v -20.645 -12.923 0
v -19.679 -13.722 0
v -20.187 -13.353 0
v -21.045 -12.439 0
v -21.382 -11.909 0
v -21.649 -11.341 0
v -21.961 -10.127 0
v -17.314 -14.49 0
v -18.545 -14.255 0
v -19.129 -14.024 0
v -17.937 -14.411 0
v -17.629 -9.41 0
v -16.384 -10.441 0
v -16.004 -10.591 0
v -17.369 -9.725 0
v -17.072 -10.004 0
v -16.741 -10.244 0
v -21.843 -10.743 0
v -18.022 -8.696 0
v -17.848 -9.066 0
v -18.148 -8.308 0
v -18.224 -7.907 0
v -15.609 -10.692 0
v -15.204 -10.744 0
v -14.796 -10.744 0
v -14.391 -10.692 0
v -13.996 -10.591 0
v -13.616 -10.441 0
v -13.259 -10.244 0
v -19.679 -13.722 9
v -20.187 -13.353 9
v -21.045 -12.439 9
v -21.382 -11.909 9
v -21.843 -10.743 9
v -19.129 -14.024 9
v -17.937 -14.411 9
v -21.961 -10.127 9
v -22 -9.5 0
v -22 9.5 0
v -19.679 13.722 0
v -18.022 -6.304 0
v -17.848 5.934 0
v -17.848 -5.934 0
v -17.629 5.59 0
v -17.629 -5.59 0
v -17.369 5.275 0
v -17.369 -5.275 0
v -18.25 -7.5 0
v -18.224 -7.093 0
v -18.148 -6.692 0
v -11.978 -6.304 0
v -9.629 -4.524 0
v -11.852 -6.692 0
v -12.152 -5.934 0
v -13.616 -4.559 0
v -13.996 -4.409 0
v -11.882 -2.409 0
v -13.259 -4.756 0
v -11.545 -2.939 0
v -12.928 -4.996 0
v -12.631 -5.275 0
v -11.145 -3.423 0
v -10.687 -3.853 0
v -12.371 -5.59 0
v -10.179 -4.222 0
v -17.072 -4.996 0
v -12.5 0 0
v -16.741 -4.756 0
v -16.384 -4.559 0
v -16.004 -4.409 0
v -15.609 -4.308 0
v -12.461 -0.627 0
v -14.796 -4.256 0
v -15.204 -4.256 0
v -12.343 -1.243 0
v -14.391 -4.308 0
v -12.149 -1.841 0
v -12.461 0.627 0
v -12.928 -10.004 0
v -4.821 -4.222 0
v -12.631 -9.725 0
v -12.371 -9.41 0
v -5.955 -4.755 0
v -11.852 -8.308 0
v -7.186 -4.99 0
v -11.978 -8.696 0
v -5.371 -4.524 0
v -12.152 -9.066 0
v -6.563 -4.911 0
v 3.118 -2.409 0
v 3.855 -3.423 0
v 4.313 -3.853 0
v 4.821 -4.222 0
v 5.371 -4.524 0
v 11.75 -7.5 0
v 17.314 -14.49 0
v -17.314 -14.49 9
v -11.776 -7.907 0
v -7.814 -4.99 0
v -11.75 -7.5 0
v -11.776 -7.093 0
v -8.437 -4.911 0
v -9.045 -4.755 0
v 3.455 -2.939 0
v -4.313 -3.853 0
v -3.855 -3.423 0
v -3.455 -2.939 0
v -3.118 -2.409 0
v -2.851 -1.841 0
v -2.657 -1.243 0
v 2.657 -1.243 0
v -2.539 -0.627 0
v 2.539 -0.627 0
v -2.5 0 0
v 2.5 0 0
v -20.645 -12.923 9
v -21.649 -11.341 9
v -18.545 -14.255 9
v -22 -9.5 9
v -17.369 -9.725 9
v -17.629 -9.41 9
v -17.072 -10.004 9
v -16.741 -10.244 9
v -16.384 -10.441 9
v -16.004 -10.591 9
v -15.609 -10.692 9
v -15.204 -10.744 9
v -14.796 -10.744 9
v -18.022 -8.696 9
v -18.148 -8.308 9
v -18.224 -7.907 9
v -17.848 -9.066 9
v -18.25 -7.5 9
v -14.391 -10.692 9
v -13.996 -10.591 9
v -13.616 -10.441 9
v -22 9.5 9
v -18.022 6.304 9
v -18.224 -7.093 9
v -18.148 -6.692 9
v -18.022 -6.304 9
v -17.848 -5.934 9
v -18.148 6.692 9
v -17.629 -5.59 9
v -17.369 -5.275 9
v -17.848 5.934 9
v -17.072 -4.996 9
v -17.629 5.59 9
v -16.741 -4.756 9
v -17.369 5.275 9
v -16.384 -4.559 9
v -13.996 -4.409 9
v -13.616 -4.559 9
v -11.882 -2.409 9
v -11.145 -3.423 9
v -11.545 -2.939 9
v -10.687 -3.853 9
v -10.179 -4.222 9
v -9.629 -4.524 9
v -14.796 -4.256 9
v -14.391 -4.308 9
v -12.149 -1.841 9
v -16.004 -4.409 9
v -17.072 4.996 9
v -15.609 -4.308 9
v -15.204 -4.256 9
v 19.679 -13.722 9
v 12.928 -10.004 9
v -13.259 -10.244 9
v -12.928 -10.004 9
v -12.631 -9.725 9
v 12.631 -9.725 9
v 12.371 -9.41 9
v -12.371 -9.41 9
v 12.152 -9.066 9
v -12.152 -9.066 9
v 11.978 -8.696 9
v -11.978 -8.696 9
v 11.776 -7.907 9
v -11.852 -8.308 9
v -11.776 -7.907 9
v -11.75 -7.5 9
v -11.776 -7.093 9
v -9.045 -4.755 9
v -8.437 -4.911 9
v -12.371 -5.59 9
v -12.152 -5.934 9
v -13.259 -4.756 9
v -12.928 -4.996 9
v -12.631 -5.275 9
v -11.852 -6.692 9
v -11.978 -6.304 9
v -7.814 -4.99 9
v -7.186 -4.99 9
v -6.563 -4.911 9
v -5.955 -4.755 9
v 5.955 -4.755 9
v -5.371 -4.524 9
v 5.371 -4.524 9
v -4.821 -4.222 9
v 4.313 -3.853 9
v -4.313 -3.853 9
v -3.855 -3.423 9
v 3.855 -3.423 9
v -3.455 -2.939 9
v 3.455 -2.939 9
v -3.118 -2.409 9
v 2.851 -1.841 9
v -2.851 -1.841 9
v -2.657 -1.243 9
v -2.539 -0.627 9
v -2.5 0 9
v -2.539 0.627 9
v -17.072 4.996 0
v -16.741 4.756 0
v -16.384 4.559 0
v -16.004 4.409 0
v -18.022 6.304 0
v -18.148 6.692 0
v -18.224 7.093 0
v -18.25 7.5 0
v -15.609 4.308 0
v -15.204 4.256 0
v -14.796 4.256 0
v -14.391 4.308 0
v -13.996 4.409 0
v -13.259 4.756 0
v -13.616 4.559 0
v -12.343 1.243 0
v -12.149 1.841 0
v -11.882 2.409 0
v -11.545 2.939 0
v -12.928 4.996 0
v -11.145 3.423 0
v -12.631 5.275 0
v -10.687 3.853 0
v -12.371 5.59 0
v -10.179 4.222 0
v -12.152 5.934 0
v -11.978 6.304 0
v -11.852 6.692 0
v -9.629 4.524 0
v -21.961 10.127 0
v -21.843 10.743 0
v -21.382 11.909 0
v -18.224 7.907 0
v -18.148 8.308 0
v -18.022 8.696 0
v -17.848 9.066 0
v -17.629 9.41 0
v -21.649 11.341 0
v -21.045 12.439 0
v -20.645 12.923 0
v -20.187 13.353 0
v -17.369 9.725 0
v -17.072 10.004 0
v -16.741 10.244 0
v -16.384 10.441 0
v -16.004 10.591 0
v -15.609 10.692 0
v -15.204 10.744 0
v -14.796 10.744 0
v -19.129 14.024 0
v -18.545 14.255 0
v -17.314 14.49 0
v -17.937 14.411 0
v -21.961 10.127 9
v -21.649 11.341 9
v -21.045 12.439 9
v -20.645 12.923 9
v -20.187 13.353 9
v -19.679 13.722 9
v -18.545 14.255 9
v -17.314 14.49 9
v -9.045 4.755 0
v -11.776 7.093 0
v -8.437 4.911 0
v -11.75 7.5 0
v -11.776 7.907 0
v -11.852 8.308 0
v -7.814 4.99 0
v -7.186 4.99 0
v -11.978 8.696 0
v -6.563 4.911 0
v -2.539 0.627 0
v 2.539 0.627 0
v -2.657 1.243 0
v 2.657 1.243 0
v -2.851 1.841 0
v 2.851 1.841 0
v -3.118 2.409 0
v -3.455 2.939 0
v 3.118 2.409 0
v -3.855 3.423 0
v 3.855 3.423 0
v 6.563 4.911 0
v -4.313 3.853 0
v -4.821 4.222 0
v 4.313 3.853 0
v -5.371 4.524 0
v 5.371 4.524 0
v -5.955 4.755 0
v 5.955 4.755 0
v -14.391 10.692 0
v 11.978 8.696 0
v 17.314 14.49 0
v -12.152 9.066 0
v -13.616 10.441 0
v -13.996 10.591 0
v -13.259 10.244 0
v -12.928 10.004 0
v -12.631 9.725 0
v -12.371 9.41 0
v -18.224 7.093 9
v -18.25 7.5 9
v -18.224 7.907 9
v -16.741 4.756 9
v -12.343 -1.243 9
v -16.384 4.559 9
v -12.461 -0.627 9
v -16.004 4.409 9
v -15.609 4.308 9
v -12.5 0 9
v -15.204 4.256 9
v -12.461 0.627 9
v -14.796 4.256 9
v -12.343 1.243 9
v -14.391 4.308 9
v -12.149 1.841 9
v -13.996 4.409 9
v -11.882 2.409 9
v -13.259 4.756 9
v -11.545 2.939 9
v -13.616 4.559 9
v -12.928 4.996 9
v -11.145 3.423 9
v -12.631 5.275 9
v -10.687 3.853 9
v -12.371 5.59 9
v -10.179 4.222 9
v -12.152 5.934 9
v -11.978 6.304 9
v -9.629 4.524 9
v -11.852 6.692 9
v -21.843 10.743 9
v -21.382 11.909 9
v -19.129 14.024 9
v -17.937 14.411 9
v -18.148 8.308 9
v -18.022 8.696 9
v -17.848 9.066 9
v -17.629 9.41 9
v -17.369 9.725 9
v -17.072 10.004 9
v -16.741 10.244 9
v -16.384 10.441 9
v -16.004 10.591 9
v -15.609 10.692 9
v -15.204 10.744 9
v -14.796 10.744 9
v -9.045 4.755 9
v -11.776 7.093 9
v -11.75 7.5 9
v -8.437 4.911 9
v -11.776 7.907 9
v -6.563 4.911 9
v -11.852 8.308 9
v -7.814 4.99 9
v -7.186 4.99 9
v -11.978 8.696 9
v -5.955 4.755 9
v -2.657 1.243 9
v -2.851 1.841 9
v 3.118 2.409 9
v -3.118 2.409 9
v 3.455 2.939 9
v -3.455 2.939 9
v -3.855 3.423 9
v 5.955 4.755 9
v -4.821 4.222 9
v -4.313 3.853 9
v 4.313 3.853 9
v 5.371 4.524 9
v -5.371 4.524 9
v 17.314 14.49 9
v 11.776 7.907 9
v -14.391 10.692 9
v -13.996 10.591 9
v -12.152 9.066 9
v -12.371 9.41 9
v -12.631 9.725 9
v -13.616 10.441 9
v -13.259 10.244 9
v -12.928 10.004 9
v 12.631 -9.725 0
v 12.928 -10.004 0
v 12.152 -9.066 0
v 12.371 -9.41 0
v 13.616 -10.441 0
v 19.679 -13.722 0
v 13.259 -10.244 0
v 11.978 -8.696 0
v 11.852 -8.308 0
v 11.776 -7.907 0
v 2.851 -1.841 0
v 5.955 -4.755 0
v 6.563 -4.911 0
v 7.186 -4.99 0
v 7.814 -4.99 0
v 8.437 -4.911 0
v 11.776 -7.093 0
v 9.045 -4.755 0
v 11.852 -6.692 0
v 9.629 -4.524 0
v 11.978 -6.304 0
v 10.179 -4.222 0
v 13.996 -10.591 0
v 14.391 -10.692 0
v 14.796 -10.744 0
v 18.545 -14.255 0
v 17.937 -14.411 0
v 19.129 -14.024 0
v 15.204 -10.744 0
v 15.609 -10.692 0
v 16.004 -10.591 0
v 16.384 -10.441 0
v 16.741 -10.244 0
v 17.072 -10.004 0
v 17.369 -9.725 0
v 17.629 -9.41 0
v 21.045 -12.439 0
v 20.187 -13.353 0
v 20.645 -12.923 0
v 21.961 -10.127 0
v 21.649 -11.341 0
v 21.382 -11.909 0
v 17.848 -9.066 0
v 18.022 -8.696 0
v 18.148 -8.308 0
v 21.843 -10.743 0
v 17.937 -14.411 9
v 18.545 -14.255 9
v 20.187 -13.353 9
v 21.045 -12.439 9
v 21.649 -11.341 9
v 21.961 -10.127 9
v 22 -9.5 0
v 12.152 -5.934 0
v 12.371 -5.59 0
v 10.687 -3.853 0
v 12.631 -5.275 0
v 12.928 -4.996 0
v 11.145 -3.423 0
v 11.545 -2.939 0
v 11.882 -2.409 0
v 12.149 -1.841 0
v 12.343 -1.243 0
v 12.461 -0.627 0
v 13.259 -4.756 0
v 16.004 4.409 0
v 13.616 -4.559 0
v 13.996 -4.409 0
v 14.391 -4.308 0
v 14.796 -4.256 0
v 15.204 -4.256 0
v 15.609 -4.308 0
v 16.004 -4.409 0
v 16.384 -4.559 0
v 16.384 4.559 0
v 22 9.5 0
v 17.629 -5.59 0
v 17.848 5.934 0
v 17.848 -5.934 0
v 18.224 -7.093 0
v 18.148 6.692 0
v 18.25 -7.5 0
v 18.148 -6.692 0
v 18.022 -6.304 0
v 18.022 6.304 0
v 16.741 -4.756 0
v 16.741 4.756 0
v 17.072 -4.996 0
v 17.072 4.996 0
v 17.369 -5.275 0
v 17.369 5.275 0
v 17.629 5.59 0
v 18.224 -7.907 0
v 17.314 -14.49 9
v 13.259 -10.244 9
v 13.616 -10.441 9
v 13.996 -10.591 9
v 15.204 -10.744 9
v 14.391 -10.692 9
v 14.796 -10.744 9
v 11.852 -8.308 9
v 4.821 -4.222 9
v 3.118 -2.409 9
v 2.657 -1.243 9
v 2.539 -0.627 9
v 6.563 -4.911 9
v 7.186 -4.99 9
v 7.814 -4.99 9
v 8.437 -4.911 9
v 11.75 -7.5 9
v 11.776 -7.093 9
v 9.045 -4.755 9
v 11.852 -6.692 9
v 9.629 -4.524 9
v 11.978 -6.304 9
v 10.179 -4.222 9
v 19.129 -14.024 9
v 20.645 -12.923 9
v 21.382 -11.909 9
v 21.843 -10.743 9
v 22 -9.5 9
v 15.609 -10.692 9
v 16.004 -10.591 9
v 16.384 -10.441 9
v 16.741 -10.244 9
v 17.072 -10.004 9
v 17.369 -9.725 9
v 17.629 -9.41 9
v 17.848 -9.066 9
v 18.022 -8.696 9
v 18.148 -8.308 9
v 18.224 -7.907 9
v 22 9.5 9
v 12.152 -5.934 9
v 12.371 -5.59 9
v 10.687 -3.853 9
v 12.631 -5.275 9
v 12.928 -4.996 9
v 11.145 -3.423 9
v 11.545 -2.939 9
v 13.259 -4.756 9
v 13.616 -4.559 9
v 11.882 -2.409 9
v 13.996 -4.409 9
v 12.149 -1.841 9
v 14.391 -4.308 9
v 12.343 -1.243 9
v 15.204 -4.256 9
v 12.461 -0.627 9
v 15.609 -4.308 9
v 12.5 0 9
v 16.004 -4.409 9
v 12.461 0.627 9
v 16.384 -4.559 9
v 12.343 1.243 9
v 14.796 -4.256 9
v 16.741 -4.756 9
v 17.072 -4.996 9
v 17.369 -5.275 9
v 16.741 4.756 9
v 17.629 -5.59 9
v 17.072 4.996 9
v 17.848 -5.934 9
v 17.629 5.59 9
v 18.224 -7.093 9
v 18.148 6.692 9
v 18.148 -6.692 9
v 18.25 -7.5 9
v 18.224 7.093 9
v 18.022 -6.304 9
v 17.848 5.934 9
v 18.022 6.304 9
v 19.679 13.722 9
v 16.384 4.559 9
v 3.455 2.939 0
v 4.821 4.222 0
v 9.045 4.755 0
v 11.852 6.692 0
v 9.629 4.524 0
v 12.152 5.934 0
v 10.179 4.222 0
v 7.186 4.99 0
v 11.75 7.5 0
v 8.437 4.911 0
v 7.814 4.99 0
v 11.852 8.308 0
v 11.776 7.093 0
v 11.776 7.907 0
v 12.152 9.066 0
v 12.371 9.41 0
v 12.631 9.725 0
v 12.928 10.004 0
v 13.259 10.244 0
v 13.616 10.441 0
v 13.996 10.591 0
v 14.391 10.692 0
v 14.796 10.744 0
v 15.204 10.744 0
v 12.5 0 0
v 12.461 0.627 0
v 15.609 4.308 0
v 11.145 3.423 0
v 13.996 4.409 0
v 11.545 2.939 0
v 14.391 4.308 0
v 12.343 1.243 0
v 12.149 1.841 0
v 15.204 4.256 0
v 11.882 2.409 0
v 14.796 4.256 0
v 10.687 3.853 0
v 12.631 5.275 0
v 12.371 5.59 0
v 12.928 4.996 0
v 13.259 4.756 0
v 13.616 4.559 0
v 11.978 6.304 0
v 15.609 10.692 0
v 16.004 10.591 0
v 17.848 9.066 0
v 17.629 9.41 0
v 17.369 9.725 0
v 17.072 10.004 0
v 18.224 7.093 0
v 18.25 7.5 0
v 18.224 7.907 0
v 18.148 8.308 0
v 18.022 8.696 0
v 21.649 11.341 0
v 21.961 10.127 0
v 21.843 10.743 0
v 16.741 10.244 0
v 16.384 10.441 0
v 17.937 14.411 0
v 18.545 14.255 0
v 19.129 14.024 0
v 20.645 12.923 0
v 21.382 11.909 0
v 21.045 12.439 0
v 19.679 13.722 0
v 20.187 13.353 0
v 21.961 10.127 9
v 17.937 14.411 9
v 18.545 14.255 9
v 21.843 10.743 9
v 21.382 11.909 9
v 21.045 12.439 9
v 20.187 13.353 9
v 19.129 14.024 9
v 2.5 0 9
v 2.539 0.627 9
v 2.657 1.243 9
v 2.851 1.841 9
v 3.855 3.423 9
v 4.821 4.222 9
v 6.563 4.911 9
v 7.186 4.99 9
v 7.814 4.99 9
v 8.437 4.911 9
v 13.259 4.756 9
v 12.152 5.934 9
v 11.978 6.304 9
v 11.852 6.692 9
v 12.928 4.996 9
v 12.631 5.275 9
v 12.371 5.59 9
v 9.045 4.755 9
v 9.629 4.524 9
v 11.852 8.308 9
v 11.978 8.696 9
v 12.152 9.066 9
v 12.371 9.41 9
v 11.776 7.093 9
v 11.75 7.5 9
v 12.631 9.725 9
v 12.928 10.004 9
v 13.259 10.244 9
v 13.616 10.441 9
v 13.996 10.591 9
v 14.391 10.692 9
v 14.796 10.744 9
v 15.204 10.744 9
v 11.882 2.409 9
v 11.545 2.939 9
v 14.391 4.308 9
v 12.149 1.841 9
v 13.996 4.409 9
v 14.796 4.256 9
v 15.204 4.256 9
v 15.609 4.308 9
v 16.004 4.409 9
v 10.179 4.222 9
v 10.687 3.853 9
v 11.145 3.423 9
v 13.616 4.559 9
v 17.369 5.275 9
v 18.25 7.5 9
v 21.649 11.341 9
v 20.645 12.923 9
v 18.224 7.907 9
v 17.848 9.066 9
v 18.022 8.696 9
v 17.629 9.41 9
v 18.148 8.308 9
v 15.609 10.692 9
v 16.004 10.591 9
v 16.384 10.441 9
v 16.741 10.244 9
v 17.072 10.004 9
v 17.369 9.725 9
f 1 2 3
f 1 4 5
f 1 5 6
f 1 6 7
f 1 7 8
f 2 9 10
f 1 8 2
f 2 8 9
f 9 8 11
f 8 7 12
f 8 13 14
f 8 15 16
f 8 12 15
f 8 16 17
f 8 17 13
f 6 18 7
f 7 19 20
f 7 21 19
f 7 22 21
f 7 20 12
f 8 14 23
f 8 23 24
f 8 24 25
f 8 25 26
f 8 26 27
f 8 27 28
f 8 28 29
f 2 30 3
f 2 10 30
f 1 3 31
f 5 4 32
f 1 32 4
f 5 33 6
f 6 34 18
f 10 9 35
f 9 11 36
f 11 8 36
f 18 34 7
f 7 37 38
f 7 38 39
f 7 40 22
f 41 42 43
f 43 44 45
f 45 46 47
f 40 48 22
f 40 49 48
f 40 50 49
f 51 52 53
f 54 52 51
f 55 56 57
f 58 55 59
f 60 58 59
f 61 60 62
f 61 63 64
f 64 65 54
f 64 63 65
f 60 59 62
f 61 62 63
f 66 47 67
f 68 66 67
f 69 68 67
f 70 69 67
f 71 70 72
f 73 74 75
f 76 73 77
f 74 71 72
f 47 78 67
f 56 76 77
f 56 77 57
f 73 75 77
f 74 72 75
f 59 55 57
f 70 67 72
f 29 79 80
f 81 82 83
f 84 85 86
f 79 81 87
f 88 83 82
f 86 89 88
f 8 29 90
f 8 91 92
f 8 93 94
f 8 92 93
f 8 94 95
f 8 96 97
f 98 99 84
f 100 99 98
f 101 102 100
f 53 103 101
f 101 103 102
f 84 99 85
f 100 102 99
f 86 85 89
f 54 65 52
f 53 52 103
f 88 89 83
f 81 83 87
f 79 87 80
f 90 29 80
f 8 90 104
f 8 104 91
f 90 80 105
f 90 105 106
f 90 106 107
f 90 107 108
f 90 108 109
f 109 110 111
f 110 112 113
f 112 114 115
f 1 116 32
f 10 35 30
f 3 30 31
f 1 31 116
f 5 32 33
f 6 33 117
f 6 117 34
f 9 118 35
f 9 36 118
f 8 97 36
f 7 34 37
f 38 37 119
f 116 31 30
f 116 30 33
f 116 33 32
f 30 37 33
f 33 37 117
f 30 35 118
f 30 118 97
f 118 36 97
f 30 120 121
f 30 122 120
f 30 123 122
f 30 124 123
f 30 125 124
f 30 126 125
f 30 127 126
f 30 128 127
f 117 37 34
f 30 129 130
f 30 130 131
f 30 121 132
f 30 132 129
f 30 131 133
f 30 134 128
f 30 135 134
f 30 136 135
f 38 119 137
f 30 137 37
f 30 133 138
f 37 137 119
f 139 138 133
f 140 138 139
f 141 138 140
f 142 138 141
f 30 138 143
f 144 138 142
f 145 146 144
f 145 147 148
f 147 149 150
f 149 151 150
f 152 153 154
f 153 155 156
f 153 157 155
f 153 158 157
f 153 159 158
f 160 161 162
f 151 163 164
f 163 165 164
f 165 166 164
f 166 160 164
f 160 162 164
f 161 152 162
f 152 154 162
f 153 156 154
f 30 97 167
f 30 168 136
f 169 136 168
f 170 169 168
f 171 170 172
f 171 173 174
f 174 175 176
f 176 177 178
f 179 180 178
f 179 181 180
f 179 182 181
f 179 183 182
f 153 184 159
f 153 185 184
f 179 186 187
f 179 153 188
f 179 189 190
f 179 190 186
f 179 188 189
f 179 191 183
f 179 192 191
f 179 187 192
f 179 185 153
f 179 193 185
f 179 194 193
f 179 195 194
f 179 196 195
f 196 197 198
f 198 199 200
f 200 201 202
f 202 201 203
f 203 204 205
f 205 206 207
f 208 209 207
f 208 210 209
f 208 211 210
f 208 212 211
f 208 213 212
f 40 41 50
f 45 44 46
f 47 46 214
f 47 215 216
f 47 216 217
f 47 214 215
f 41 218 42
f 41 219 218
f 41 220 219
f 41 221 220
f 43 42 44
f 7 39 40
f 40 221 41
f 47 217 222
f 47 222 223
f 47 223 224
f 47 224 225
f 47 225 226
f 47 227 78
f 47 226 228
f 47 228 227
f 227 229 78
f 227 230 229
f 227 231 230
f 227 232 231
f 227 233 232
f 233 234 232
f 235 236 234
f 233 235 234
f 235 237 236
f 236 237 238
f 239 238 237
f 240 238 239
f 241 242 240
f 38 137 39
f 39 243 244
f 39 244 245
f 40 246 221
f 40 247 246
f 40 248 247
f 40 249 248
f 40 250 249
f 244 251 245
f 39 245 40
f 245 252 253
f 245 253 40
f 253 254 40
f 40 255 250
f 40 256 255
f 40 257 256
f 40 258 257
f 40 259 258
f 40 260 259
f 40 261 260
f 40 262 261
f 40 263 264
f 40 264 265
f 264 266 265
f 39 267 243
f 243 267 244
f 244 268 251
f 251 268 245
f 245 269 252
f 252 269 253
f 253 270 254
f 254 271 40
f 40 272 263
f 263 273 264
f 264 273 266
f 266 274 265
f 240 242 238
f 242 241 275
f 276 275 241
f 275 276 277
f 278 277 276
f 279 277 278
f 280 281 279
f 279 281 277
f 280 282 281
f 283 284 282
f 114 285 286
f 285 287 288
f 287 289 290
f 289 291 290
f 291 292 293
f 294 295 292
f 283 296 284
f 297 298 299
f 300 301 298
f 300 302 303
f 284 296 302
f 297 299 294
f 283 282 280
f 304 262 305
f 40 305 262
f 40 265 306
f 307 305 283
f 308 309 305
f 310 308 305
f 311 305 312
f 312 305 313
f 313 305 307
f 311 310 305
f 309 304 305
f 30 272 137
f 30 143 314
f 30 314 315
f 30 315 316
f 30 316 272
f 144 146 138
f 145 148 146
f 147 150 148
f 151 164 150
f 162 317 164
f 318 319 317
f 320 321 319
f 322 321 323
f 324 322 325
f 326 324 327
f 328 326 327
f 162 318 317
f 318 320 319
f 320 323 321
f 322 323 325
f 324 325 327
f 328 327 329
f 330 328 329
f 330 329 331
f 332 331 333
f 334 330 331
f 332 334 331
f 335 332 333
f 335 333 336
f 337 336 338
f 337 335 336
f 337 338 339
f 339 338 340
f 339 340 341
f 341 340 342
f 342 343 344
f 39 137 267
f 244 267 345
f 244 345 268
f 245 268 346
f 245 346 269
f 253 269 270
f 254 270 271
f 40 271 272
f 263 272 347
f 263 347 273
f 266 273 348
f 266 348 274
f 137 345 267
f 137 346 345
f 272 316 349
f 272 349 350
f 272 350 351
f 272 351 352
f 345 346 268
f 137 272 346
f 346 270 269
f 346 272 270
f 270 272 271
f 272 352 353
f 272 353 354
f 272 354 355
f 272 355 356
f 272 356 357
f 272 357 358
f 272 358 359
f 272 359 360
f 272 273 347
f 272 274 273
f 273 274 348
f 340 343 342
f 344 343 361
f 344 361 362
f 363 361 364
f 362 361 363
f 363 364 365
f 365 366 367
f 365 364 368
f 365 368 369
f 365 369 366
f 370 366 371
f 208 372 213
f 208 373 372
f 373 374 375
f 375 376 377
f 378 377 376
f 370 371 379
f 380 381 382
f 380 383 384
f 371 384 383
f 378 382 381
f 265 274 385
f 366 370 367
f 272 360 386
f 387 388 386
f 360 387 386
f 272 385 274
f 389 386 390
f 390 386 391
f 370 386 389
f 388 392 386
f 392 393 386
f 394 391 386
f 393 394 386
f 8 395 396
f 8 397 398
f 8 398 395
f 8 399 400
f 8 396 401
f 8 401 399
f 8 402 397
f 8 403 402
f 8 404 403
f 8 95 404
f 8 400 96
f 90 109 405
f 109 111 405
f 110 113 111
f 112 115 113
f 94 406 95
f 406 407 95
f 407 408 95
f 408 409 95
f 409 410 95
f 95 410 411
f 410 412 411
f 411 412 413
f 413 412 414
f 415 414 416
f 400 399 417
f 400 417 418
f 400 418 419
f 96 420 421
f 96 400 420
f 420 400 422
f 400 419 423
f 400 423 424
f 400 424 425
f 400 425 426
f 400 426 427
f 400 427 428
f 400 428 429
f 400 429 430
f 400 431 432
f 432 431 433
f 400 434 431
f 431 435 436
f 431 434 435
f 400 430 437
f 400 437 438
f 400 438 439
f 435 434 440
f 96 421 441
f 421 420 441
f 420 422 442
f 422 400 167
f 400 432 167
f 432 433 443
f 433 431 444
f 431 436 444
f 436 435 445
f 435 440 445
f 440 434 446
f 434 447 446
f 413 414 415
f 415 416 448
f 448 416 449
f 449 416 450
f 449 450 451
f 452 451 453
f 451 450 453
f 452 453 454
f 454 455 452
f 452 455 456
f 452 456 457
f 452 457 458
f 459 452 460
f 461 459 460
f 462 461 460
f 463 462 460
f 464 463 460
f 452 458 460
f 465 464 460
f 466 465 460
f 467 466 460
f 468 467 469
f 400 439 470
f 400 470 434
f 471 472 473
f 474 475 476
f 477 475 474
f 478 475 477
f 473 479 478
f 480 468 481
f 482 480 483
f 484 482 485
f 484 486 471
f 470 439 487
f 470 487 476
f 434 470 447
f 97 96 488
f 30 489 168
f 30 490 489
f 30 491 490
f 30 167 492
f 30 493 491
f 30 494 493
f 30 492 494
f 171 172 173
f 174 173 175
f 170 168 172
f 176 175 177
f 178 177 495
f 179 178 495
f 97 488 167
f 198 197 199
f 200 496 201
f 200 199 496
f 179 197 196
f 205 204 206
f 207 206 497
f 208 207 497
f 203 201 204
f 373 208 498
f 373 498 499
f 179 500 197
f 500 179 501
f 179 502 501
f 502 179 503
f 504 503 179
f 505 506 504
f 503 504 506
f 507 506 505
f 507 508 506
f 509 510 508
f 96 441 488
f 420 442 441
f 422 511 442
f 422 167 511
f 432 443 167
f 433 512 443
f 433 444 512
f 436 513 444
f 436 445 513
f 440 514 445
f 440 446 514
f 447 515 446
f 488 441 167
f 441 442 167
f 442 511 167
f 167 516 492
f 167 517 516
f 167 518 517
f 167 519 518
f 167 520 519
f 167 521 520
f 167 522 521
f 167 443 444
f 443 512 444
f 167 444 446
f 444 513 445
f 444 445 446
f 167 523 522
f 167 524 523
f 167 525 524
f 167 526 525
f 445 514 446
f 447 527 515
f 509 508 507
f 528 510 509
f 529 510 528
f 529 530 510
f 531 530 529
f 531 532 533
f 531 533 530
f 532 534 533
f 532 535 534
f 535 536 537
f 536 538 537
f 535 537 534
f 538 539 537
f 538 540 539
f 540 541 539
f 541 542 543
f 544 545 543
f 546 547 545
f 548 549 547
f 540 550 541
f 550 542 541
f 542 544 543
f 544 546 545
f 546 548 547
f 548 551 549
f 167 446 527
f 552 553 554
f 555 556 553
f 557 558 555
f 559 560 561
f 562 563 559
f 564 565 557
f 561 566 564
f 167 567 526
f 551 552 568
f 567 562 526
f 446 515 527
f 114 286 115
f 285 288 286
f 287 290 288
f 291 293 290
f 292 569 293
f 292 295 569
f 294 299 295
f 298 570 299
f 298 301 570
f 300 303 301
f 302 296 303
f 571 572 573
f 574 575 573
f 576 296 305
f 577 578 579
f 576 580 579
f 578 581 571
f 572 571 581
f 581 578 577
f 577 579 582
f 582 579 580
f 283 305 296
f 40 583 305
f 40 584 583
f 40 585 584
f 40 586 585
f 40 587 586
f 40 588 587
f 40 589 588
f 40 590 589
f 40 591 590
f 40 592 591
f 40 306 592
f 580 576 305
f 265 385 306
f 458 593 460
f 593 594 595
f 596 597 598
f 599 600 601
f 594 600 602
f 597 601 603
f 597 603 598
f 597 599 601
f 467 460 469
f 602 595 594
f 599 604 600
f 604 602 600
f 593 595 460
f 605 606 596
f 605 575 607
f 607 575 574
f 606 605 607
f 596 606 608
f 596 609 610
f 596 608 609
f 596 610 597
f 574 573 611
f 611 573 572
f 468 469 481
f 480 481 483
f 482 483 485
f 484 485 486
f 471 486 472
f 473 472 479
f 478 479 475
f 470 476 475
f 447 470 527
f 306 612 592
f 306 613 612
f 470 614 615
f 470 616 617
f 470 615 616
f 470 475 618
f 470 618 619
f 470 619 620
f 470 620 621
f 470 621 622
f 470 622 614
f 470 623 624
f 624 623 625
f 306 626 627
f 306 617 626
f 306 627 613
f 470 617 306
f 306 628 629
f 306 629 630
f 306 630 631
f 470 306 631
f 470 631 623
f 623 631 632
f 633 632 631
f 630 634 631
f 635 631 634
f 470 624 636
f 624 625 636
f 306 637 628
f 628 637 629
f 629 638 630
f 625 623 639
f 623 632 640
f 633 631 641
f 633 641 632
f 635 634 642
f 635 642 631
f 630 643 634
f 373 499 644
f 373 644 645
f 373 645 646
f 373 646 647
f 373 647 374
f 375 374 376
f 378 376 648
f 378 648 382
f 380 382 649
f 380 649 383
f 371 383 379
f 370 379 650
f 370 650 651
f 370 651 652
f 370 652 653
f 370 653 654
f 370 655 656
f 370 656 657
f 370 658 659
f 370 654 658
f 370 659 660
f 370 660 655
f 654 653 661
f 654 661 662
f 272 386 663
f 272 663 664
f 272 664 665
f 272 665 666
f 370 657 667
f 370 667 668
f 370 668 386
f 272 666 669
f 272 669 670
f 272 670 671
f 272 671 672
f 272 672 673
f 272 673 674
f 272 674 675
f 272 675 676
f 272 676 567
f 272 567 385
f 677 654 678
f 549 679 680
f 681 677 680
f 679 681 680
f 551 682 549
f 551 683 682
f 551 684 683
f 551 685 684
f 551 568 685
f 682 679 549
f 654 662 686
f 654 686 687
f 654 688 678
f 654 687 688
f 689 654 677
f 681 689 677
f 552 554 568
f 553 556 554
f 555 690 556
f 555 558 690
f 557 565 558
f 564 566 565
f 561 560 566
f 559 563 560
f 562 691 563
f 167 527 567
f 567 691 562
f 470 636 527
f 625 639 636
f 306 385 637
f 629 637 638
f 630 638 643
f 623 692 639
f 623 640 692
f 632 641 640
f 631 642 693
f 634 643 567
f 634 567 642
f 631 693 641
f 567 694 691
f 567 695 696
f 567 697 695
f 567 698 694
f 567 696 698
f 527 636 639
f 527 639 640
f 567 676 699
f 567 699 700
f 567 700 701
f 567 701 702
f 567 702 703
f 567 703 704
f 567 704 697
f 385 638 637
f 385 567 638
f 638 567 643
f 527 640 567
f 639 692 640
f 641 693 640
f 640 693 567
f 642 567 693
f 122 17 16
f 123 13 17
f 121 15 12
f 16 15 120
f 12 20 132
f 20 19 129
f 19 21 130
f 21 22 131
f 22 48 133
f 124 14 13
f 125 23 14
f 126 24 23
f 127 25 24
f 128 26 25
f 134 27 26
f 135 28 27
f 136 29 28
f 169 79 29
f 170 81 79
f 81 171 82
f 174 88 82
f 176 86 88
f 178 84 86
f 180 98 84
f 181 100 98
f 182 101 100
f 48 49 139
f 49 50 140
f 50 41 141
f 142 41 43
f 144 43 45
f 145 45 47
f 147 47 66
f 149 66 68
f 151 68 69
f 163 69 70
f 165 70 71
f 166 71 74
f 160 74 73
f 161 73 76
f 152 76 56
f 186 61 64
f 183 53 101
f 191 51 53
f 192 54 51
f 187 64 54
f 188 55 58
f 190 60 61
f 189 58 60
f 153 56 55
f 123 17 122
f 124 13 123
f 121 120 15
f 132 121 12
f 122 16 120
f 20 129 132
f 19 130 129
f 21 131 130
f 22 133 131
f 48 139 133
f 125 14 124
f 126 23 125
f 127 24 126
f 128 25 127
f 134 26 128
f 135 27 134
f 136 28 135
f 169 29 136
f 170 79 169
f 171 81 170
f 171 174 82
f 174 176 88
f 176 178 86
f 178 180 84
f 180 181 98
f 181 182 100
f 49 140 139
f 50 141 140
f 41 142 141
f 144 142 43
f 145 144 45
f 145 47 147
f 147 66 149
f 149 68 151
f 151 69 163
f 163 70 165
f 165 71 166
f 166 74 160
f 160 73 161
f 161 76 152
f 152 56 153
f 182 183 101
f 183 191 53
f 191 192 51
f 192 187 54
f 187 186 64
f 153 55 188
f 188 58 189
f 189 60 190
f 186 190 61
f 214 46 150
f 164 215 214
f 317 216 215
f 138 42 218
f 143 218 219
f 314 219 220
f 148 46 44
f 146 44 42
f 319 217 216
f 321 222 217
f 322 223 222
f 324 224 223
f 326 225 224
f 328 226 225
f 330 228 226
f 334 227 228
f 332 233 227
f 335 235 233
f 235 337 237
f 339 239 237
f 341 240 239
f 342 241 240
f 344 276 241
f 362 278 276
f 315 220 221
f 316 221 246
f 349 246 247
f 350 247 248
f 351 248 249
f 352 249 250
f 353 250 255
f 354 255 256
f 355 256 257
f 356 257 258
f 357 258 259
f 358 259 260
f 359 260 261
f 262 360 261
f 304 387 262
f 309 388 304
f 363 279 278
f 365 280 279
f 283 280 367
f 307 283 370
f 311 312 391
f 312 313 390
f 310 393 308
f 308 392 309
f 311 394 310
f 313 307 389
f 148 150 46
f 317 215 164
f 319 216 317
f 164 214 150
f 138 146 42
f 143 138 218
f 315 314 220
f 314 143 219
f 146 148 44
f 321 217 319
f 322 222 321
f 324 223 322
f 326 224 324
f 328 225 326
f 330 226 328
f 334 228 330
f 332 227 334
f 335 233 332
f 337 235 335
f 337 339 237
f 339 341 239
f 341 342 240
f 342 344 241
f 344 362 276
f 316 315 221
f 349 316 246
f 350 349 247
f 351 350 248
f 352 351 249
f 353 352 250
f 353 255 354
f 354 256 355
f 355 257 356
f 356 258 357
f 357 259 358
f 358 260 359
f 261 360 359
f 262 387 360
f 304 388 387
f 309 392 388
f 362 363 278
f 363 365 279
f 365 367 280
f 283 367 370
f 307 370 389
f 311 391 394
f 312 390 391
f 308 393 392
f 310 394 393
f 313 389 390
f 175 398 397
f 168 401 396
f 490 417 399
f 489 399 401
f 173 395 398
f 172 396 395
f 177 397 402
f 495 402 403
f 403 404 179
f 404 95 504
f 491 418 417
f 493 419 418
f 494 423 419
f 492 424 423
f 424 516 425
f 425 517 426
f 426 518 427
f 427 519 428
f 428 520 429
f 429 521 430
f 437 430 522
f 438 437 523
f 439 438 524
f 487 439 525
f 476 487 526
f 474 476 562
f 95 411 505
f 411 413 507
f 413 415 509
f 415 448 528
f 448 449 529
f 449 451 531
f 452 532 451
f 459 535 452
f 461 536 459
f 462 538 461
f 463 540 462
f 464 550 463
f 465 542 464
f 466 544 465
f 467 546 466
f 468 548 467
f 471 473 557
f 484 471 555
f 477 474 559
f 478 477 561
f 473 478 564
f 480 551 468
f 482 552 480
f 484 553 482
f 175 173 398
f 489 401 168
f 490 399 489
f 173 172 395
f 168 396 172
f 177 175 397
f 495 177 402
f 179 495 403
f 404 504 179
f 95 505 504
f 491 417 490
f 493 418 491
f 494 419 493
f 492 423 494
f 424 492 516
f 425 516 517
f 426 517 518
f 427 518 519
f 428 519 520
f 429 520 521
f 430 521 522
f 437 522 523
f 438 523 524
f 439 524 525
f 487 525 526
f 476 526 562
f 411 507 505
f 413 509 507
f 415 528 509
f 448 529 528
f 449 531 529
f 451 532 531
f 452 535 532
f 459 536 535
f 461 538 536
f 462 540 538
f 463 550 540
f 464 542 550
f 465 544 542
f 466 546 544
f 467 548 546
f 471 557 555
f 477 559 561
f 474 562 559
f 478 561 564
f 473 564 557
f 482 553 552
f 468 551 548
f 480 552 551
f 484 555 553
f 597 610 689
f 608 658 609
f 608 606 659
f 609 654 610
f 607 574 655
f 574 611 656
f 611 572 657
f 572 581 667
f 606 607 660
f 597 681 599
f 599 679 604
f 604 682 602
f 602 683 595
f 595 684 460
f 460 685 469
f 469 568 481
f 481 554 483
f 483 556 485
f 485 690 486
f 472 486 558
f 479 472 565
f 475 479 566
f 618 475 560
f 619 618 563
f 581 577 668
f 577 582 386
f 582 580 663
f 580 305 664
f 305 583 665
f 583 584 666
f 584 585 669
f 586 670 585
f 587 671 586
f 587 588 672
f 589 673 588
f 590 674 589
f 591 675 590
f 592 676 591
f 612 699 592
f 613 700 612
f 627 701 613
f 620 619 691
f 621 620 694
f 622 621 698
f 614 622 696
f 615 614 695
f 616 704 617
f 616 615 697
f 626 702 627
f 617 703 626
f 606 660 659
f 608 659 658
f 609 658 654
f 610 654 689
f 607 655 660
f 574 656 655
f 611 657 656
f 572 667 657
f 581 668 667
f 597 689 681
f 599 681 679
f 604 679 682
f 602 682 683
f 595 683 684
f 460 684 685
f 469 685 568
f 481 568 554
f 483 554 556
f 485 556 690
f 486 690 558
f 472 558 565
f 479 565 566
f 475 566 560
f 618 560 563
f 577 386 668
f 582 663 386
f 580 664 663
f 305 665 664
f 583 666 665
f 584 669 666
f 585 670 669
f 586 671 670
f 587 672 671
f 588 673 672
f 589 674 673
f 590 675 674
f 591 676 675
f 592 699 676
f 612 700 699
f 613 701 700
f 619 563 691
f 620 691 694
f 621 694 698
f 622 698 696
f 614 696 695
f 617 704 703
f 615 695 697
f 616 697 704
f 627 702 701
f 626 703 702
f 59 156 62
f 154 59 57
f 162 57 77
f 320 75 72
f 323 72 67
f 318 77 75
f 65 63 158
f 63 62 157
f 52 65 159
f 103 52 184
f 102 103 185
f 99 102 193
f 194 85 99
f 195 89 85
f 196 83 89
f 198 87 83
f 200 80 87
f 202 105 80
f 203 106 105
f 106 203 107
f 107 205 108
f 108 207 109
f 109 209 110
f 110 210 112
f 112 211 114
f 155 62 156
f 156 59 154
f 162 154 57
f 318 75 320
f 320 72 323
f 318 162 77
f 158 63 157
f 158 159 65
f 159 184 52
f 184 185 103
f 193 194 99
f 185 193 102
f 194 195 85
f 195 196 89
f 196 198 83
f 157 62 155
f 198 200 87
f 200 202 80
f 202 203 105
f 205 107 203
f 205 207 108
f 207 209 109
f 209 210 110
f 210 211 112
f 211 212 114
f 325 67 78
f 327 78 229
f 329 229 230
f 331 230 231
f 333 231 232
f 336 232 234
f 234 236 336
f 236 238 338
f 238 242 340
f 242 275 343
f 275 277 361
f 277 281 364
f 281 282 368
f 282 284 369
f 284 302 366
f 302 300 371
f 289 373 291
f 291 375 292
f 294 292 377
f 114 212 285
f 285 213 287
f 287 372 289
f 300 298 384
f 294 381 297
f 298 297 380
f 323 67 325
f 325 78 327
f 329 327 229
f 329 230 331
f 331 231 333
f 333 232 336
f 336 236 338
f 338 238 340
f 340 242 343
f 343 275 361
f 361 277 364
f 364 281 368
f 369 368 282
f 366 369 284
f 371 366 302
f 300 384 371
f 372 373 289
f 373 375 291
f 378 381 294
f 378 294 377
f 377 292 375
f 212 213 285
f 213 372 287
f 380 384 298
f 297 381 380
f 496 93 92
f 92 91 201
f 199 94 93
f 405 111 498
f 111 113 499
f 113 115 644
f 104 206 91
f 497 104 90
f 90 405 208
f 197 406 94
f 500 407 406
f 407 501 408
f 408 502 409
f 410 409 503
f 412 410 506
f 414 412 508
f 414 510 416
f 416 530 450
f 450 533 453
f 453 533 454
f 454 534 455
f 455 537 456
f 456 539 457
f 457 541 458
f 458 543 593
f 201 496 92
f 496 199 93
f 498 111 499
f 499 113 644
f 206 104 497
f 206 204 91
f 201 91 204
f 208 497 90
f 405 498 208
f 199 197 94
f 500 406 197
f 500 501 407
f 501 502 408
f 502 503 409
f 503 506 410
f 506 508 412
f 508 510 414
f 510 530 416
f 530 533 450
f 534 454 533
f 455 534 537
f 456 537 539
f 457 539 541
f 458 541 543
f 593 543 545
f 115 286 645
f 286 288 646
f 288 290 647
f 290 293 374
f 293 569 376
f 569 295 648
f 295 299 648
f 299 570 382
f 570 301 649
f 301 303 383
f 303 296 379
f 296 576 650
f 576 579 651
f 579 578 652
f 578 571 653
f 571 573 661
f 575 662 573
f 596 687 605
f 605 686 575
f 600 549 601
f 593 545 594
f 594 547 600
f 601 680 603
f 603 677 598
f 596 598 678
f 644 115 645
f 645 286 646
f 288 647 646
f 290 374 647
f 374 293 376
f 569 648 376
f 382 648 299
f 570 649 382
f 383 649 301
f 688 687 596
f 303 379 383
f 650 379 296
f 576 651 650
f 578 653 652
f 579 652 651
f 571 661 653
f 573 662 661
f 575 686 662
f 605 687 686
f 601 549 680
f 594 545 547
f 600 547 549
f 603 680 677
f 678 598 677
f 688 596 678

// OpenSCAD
$fn = 50;

difference() {
	union() {
		hull() {
			translate(v = [-17.0, 9.5, 0]) {
				cylinder(h = 9, r = 5);
			}
			translate(v = [17.0, 9.5, 0]) {
				cylinder(h = 9, r = 5);
			}
			translate(v = [-17.0, -9.5, 0]) {
				cylinder(h = 9, r = 5);
			}
			translate(v = [17.0, -9.5, 0]) {
				cylinder(h = 9, r = 5);
			}
		}
	}
	union() {
		translate(v = [-15.0, -7.5, -100.0]) {
			cylinder(h = 200, r = 3.25);
		}
		translate(v = [-15.0, 7.5, -100.0]) {
			cylinder(h = 200, r = 3.25);
		}
		translate(v = [15.0, -7.5, -100.0]) {
			cylinder(h = 200, r = 3.25);
		}
		translate(v = [15.0, 7.5, -100.0]) {
			cylinder(h = 200, r = 3.25);
		}
		translate(v = [-15.0, -7.5, -100.0]) {
			cylinder(h = 200, r = 1.8);
		}
		translate(v = [-15.0, 7.5, -100.0]) {
			cylinder(h = 200, r = 1.8);
		}
		translate(v = [15.0, -7.5, -100.0]) {
			cylinder(h = 200, r = 1.8);
		}
		translate(v = [15.0, 7.5, -100.0]) {
			cylinder(h = 200, r = 1.8);
		}
		translate(v = [-7.5, 0, 0.0]) {
			cylinder(h = 9, r = 5.0);
		}
		translate(v = [7.5, 0, 0.0]) {
			cylinder(h = 9, r = 5.0);
		}
	}
}
